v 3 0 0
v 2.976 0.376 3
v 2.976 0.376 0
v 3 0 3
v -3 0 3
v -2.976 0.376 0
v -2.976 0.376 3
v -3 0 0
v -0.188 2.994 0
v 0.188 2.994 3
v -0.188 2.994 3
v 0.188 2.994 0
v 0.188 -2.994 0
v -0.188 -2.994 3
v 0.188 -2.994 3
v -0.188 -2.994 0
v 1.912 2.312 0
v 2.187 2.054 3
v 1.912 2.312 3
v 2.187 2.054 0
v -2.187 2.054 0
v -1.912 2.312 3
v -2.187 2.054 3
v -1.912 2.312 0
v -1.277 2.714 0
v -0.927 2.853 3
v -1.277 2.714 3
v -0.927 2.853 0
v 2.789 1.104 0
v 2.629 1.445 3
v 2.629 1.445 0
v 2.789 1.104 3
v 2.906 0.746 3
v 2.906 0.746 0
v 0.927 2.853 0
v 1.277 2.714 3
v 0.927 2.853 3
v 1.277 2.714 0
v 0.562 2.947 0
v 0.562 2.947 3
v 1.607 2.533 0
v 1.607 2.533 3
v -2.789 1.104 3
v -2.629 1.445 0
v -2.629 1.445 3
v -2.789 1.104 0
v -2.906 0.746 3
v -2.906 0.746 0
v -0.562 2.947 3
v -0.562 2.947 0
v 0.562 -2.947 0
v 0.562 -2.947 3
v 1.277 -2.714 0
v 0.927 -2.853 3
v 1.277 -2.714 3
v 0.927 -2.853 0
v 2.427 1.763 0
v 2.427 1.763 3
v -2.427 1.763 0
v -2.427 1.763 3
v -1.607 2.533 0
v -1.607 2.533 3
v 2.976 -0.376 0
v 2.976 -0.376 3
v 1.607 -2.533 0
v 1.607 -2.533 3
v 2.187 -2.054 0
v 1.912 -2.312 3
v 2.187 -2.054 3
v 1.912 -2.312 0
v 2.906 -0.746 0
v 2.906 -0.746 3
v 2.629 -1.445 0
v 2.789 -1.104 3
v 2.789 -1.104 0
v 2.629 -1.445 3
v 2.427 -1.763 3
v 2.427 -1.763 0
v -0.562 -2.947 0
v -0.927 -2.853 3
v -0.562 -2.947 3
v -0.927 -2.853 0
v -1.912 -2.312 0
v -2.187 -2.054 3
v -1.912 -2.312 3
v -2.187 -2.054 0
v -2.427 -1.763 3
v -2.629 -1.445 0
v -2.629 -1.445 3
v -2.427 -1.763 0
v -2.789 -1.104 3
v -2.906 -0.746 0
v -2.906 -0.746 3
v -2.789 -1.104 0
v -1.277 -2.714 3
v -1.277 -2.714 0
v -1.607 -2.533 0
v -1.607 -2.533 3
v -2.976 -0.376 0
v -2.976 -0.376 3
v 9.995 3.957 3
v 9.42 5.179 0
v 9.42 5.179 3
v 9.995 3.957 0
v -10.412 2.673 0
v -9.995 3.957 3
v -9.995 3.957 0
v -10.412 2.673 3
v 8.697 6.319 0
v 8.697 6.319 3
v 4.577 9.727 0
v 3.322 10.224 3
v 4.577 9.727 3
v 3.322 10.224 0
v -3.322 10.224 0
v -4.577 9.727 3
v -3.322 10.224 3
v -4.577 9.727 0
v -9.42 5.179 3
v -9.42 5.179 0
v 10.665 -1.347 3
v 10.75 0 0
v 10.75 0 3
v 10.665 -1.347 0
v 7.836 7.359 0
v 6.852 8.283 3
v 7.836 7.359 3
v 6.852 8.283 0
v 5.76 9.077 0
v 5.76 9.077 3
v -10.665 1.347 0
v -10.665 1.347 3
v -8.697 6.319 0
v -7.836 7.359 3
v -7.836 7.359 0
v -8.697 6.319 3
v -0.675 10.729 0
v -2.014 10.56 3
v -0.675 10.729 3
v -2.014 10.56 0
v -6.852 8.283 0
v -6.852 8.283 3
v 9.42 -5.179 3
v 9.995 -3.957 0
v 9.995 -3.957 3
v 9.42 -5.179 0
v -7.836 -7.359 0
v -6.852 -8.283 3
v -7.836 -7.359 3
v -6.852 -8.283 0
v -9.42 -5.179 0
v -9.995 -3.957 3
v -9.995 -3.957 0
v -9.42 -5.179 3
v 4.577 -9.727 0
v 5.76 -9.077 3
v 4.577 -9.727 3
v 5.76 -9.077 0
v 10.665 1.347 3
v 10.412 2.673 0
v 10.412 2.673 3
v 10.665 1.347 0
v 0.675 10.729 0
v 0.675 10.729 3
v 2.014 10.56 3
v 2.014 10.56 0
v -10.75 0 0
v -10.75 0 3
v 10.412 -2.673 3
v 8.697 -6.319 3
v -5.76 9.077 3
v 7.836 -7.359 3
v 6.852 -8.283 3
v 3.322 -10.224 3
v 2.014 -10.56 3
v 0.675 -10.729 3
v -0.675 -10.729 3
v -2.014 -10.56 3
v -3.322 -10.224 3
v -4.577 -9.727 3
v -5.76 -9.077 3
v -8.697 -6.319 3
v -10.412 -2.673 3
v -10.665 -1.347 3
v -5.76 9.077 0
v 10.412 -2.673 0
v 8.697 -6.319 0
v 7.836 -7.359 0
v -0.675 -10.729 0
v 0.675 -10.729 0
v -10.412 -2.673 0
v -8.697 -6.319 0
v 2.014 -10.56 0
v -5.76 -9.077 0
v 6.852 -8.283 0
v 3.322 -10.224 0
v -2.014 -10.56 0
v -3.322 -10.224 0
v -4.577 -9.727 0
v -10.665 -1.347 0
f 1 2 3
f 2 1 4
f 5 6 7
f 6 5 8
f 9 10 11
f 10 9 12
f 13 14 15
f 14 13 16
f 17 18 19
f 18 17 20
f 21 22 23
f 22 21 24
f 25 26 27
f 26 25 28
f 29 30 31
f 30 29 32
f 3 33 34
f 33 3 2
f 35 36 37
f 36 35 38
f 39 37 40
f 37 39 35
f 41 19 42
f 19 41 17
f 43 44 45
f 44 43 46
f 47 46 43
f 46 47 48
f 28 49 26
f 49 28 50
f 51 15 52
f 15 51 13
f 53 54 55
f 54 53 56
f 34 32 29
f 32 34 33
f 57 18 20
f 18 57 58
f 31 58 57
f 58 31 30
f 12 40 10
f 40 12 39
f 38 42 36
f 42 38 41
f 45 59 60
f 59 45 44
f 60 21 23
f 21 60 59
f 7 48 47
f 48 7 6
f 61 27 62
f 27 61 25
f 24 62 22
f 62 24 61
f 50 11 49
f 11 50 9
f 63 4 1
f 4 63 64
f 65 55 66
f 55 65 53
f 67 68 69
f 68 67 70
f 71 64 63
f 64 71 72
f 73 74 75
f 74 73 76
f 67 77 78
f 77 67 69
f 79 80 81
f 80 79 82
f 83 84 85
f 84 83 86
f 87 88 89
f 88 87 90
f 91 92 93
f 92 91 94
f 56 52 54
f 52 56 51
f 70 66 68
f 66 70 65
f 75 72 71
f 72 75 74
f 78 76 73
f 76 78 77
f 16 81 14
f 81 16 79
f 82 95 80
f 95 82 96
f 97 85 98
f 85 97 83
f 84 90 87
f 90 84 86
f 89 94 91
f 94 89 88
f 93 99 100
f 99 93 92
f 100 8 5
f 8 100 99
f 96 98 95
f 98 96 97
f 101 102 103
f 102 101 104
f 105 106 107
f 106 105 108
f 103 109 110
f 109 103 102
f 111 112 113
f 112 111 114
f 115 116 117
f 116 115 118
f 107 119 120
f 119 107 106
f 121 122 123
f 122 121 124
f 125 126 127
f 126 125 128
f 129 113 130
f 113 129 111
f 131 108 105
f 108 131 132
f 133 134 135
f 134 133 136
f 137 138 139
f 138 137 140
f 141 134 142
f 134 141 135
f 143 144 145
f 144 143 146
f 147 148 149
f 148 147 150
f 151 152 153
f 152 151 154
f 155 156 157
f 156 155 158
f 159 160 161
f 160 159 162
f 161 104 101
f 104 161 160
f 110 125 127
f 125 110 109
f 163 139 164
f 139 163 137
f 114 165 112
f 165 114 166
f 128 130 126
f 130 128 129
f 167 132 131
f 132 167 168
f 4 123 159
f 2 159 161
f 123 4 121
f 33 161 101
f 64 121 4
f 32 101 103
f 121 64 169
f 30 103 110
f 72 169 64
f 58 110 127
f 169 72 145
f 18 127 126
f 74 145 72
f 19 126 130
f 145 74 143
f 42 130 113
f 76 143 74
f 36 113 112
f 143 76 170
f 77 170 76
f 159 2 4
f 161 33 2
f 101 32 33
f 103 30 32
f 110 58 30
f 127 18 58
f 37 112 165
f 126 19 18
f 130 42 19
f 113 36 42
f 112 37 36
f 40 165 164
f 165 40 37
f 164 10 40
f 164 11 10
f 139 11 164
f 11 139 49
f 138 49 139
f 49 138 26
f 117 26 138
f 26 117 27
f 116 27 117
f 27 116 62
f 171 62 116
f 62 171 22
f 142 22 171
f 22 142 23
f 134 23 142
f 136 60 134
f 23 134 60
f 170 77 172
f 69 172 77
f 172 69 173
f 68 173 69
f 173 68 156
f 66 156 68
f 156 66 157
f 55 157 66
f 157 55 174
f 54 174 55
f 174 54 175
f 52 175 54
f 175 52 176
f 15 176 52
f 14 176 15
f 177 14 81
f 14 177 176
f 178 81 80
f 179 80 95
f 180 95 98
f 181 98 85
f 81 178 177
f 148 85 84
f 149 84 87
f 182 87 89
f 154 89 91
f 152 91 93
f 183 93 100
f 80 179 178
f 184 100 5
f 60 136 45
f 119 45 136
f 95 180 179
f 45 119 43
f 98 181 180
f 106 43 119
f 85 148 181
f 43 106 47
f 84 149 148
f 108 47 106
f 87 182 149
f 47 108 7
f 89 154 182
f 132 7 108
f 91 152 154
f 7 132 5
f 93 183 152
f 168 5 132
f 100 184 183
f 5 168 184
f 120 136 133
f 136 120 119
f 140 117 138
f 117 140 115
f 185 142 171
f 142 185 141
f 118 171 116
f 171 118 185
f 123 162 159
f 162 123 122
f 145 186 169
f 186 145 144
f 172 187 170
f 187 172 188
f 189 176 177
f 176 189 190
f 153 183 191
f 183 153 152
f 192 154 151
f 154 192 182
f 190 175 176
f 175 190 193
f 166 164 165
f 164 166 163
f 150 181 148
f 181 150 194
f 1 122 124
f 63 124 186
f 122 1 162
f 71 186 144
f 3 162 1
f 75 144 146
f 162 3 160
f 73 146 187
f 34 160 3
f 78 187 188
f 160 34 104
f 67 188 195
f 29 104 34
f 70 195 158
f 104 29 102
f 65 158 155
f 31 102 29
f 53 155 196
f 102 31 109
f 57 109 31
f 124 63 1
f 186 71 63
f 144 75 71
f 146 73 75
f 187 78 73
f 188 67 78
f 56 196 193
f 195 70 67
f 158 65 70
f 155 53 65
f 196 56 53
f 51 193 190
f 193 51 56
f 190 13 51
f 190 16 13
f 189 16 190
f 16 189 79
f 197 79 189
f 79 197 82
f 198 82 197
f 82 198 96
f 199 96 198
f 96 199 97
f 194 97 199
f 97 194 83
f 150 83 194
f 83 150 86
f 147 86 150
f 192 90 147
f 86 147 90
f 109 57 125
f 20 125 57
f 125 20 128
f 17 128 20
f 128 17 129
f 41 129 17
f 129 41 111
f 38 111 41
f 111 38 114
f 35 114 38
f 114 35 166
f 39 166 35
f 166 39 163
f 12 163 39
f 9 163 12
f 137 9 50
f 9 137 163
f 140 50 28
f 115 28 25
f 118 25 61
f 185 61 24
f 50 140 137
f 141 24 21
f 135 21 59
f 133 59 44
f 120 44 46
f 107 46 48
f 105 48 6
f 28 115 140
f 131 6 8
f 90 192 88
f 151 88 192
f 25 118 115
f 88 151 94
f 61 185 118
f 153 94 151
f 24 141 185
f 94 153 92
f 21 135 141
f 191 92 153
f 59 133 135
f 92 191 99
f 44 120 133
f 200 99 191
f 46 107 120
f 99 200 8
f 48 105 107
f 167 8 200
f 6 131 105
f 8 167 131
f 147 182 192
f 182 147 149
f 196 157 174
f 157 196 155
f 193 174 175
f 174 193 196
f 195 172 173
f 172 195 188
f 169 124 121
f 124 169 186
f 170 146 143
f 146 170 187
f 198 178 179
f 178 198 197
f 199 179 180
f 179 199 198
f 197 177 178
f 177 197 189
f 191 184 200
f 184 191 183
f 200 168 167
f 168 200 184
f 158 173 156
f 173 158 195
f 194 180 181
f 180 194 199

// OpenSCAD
$fn = 50;


difference() {
	union() {
		*color(alpha = 1.0000000000, c = "gray") {
			translate(v = [0, 7, 0]) {
				linear_extrude(height = 1) {
					text(font = "Arial:style=Bold", halign = "center", size = 4.5000000000, text = "COMMENT circle main", valign = "center");
				}
			}
		}
		*color(alpha = 1.0000000000, c = "gray") {
			translate(v = [0, 14, 0]) {
				linear_extrude(height = 1.5000000000) {
					text(font = "Arial:style=Bold", halign = "center", size = 4.5000000000, text = "COMMENT description oobb_circle_shape_p_type_3_depth_1.5_diameter_3_thickness_1.5_width_1.5_height", valign = "center");
				}
			}
		}
		cylinder(h = 3, r = 10.7500000000);
	}
	union() {
		*color(alpha = 1.0000000000, c = "gray") {
			translate(v = [0, 7, 0]) {
				linear_extrude(height = 1) {
					text(font = "Arial:style=Bold", halign = "center", size = 4.5000000000, text = "COMMENT holes main", valign = "center");
				}
			}
		}
		*color(alpha = 1.0000000000, c = "gray") {
			translate(v = [0, 14, 0]) {
				linear_extrude(height = 1.5000000000) {
					text(font = "Arial:style=Bold", halign = "center", size = 4.5000000000, text = "COMMENT description oobb_holes_shape_n_type_1.5_diameter_3_thickness_1.5_width_1.5_height_true_both_holes_true_circle", valign = "center");
				}
			}
		}
		translate(v = [0.0000000000, 0.0000000000, -50.0000000000]) {
			cylinder(h = 100, r = 3.0000000000);
		}
		translate(v = [0.0000000000, 0.0000000000, -50.0000000000]) {
			cylinder(h = 100, r = 3.0000000000);
		}
		translate(v = [0.0000000000, 0.0000000000, -50.0000000000]) {
			cylinder(h = 100, r = 3.0000000000);
		}
		translate(v = [0.0000000000, 0.0000000000, -50.0000000000]) {
			cylinder(h = 100, r = 1.5000000000);
		}
		translate(v = [0.0000000000, 0.0000000000, -50.0000000000]) {
			cylinder(h = 100, r = 1.5000000000);
		}
		translate(v = [0.0000000000, 0.0000000000, -50.0000000000]) {
			cylinder(h = 100, r = 1.5000000000);
		}
	}
}
